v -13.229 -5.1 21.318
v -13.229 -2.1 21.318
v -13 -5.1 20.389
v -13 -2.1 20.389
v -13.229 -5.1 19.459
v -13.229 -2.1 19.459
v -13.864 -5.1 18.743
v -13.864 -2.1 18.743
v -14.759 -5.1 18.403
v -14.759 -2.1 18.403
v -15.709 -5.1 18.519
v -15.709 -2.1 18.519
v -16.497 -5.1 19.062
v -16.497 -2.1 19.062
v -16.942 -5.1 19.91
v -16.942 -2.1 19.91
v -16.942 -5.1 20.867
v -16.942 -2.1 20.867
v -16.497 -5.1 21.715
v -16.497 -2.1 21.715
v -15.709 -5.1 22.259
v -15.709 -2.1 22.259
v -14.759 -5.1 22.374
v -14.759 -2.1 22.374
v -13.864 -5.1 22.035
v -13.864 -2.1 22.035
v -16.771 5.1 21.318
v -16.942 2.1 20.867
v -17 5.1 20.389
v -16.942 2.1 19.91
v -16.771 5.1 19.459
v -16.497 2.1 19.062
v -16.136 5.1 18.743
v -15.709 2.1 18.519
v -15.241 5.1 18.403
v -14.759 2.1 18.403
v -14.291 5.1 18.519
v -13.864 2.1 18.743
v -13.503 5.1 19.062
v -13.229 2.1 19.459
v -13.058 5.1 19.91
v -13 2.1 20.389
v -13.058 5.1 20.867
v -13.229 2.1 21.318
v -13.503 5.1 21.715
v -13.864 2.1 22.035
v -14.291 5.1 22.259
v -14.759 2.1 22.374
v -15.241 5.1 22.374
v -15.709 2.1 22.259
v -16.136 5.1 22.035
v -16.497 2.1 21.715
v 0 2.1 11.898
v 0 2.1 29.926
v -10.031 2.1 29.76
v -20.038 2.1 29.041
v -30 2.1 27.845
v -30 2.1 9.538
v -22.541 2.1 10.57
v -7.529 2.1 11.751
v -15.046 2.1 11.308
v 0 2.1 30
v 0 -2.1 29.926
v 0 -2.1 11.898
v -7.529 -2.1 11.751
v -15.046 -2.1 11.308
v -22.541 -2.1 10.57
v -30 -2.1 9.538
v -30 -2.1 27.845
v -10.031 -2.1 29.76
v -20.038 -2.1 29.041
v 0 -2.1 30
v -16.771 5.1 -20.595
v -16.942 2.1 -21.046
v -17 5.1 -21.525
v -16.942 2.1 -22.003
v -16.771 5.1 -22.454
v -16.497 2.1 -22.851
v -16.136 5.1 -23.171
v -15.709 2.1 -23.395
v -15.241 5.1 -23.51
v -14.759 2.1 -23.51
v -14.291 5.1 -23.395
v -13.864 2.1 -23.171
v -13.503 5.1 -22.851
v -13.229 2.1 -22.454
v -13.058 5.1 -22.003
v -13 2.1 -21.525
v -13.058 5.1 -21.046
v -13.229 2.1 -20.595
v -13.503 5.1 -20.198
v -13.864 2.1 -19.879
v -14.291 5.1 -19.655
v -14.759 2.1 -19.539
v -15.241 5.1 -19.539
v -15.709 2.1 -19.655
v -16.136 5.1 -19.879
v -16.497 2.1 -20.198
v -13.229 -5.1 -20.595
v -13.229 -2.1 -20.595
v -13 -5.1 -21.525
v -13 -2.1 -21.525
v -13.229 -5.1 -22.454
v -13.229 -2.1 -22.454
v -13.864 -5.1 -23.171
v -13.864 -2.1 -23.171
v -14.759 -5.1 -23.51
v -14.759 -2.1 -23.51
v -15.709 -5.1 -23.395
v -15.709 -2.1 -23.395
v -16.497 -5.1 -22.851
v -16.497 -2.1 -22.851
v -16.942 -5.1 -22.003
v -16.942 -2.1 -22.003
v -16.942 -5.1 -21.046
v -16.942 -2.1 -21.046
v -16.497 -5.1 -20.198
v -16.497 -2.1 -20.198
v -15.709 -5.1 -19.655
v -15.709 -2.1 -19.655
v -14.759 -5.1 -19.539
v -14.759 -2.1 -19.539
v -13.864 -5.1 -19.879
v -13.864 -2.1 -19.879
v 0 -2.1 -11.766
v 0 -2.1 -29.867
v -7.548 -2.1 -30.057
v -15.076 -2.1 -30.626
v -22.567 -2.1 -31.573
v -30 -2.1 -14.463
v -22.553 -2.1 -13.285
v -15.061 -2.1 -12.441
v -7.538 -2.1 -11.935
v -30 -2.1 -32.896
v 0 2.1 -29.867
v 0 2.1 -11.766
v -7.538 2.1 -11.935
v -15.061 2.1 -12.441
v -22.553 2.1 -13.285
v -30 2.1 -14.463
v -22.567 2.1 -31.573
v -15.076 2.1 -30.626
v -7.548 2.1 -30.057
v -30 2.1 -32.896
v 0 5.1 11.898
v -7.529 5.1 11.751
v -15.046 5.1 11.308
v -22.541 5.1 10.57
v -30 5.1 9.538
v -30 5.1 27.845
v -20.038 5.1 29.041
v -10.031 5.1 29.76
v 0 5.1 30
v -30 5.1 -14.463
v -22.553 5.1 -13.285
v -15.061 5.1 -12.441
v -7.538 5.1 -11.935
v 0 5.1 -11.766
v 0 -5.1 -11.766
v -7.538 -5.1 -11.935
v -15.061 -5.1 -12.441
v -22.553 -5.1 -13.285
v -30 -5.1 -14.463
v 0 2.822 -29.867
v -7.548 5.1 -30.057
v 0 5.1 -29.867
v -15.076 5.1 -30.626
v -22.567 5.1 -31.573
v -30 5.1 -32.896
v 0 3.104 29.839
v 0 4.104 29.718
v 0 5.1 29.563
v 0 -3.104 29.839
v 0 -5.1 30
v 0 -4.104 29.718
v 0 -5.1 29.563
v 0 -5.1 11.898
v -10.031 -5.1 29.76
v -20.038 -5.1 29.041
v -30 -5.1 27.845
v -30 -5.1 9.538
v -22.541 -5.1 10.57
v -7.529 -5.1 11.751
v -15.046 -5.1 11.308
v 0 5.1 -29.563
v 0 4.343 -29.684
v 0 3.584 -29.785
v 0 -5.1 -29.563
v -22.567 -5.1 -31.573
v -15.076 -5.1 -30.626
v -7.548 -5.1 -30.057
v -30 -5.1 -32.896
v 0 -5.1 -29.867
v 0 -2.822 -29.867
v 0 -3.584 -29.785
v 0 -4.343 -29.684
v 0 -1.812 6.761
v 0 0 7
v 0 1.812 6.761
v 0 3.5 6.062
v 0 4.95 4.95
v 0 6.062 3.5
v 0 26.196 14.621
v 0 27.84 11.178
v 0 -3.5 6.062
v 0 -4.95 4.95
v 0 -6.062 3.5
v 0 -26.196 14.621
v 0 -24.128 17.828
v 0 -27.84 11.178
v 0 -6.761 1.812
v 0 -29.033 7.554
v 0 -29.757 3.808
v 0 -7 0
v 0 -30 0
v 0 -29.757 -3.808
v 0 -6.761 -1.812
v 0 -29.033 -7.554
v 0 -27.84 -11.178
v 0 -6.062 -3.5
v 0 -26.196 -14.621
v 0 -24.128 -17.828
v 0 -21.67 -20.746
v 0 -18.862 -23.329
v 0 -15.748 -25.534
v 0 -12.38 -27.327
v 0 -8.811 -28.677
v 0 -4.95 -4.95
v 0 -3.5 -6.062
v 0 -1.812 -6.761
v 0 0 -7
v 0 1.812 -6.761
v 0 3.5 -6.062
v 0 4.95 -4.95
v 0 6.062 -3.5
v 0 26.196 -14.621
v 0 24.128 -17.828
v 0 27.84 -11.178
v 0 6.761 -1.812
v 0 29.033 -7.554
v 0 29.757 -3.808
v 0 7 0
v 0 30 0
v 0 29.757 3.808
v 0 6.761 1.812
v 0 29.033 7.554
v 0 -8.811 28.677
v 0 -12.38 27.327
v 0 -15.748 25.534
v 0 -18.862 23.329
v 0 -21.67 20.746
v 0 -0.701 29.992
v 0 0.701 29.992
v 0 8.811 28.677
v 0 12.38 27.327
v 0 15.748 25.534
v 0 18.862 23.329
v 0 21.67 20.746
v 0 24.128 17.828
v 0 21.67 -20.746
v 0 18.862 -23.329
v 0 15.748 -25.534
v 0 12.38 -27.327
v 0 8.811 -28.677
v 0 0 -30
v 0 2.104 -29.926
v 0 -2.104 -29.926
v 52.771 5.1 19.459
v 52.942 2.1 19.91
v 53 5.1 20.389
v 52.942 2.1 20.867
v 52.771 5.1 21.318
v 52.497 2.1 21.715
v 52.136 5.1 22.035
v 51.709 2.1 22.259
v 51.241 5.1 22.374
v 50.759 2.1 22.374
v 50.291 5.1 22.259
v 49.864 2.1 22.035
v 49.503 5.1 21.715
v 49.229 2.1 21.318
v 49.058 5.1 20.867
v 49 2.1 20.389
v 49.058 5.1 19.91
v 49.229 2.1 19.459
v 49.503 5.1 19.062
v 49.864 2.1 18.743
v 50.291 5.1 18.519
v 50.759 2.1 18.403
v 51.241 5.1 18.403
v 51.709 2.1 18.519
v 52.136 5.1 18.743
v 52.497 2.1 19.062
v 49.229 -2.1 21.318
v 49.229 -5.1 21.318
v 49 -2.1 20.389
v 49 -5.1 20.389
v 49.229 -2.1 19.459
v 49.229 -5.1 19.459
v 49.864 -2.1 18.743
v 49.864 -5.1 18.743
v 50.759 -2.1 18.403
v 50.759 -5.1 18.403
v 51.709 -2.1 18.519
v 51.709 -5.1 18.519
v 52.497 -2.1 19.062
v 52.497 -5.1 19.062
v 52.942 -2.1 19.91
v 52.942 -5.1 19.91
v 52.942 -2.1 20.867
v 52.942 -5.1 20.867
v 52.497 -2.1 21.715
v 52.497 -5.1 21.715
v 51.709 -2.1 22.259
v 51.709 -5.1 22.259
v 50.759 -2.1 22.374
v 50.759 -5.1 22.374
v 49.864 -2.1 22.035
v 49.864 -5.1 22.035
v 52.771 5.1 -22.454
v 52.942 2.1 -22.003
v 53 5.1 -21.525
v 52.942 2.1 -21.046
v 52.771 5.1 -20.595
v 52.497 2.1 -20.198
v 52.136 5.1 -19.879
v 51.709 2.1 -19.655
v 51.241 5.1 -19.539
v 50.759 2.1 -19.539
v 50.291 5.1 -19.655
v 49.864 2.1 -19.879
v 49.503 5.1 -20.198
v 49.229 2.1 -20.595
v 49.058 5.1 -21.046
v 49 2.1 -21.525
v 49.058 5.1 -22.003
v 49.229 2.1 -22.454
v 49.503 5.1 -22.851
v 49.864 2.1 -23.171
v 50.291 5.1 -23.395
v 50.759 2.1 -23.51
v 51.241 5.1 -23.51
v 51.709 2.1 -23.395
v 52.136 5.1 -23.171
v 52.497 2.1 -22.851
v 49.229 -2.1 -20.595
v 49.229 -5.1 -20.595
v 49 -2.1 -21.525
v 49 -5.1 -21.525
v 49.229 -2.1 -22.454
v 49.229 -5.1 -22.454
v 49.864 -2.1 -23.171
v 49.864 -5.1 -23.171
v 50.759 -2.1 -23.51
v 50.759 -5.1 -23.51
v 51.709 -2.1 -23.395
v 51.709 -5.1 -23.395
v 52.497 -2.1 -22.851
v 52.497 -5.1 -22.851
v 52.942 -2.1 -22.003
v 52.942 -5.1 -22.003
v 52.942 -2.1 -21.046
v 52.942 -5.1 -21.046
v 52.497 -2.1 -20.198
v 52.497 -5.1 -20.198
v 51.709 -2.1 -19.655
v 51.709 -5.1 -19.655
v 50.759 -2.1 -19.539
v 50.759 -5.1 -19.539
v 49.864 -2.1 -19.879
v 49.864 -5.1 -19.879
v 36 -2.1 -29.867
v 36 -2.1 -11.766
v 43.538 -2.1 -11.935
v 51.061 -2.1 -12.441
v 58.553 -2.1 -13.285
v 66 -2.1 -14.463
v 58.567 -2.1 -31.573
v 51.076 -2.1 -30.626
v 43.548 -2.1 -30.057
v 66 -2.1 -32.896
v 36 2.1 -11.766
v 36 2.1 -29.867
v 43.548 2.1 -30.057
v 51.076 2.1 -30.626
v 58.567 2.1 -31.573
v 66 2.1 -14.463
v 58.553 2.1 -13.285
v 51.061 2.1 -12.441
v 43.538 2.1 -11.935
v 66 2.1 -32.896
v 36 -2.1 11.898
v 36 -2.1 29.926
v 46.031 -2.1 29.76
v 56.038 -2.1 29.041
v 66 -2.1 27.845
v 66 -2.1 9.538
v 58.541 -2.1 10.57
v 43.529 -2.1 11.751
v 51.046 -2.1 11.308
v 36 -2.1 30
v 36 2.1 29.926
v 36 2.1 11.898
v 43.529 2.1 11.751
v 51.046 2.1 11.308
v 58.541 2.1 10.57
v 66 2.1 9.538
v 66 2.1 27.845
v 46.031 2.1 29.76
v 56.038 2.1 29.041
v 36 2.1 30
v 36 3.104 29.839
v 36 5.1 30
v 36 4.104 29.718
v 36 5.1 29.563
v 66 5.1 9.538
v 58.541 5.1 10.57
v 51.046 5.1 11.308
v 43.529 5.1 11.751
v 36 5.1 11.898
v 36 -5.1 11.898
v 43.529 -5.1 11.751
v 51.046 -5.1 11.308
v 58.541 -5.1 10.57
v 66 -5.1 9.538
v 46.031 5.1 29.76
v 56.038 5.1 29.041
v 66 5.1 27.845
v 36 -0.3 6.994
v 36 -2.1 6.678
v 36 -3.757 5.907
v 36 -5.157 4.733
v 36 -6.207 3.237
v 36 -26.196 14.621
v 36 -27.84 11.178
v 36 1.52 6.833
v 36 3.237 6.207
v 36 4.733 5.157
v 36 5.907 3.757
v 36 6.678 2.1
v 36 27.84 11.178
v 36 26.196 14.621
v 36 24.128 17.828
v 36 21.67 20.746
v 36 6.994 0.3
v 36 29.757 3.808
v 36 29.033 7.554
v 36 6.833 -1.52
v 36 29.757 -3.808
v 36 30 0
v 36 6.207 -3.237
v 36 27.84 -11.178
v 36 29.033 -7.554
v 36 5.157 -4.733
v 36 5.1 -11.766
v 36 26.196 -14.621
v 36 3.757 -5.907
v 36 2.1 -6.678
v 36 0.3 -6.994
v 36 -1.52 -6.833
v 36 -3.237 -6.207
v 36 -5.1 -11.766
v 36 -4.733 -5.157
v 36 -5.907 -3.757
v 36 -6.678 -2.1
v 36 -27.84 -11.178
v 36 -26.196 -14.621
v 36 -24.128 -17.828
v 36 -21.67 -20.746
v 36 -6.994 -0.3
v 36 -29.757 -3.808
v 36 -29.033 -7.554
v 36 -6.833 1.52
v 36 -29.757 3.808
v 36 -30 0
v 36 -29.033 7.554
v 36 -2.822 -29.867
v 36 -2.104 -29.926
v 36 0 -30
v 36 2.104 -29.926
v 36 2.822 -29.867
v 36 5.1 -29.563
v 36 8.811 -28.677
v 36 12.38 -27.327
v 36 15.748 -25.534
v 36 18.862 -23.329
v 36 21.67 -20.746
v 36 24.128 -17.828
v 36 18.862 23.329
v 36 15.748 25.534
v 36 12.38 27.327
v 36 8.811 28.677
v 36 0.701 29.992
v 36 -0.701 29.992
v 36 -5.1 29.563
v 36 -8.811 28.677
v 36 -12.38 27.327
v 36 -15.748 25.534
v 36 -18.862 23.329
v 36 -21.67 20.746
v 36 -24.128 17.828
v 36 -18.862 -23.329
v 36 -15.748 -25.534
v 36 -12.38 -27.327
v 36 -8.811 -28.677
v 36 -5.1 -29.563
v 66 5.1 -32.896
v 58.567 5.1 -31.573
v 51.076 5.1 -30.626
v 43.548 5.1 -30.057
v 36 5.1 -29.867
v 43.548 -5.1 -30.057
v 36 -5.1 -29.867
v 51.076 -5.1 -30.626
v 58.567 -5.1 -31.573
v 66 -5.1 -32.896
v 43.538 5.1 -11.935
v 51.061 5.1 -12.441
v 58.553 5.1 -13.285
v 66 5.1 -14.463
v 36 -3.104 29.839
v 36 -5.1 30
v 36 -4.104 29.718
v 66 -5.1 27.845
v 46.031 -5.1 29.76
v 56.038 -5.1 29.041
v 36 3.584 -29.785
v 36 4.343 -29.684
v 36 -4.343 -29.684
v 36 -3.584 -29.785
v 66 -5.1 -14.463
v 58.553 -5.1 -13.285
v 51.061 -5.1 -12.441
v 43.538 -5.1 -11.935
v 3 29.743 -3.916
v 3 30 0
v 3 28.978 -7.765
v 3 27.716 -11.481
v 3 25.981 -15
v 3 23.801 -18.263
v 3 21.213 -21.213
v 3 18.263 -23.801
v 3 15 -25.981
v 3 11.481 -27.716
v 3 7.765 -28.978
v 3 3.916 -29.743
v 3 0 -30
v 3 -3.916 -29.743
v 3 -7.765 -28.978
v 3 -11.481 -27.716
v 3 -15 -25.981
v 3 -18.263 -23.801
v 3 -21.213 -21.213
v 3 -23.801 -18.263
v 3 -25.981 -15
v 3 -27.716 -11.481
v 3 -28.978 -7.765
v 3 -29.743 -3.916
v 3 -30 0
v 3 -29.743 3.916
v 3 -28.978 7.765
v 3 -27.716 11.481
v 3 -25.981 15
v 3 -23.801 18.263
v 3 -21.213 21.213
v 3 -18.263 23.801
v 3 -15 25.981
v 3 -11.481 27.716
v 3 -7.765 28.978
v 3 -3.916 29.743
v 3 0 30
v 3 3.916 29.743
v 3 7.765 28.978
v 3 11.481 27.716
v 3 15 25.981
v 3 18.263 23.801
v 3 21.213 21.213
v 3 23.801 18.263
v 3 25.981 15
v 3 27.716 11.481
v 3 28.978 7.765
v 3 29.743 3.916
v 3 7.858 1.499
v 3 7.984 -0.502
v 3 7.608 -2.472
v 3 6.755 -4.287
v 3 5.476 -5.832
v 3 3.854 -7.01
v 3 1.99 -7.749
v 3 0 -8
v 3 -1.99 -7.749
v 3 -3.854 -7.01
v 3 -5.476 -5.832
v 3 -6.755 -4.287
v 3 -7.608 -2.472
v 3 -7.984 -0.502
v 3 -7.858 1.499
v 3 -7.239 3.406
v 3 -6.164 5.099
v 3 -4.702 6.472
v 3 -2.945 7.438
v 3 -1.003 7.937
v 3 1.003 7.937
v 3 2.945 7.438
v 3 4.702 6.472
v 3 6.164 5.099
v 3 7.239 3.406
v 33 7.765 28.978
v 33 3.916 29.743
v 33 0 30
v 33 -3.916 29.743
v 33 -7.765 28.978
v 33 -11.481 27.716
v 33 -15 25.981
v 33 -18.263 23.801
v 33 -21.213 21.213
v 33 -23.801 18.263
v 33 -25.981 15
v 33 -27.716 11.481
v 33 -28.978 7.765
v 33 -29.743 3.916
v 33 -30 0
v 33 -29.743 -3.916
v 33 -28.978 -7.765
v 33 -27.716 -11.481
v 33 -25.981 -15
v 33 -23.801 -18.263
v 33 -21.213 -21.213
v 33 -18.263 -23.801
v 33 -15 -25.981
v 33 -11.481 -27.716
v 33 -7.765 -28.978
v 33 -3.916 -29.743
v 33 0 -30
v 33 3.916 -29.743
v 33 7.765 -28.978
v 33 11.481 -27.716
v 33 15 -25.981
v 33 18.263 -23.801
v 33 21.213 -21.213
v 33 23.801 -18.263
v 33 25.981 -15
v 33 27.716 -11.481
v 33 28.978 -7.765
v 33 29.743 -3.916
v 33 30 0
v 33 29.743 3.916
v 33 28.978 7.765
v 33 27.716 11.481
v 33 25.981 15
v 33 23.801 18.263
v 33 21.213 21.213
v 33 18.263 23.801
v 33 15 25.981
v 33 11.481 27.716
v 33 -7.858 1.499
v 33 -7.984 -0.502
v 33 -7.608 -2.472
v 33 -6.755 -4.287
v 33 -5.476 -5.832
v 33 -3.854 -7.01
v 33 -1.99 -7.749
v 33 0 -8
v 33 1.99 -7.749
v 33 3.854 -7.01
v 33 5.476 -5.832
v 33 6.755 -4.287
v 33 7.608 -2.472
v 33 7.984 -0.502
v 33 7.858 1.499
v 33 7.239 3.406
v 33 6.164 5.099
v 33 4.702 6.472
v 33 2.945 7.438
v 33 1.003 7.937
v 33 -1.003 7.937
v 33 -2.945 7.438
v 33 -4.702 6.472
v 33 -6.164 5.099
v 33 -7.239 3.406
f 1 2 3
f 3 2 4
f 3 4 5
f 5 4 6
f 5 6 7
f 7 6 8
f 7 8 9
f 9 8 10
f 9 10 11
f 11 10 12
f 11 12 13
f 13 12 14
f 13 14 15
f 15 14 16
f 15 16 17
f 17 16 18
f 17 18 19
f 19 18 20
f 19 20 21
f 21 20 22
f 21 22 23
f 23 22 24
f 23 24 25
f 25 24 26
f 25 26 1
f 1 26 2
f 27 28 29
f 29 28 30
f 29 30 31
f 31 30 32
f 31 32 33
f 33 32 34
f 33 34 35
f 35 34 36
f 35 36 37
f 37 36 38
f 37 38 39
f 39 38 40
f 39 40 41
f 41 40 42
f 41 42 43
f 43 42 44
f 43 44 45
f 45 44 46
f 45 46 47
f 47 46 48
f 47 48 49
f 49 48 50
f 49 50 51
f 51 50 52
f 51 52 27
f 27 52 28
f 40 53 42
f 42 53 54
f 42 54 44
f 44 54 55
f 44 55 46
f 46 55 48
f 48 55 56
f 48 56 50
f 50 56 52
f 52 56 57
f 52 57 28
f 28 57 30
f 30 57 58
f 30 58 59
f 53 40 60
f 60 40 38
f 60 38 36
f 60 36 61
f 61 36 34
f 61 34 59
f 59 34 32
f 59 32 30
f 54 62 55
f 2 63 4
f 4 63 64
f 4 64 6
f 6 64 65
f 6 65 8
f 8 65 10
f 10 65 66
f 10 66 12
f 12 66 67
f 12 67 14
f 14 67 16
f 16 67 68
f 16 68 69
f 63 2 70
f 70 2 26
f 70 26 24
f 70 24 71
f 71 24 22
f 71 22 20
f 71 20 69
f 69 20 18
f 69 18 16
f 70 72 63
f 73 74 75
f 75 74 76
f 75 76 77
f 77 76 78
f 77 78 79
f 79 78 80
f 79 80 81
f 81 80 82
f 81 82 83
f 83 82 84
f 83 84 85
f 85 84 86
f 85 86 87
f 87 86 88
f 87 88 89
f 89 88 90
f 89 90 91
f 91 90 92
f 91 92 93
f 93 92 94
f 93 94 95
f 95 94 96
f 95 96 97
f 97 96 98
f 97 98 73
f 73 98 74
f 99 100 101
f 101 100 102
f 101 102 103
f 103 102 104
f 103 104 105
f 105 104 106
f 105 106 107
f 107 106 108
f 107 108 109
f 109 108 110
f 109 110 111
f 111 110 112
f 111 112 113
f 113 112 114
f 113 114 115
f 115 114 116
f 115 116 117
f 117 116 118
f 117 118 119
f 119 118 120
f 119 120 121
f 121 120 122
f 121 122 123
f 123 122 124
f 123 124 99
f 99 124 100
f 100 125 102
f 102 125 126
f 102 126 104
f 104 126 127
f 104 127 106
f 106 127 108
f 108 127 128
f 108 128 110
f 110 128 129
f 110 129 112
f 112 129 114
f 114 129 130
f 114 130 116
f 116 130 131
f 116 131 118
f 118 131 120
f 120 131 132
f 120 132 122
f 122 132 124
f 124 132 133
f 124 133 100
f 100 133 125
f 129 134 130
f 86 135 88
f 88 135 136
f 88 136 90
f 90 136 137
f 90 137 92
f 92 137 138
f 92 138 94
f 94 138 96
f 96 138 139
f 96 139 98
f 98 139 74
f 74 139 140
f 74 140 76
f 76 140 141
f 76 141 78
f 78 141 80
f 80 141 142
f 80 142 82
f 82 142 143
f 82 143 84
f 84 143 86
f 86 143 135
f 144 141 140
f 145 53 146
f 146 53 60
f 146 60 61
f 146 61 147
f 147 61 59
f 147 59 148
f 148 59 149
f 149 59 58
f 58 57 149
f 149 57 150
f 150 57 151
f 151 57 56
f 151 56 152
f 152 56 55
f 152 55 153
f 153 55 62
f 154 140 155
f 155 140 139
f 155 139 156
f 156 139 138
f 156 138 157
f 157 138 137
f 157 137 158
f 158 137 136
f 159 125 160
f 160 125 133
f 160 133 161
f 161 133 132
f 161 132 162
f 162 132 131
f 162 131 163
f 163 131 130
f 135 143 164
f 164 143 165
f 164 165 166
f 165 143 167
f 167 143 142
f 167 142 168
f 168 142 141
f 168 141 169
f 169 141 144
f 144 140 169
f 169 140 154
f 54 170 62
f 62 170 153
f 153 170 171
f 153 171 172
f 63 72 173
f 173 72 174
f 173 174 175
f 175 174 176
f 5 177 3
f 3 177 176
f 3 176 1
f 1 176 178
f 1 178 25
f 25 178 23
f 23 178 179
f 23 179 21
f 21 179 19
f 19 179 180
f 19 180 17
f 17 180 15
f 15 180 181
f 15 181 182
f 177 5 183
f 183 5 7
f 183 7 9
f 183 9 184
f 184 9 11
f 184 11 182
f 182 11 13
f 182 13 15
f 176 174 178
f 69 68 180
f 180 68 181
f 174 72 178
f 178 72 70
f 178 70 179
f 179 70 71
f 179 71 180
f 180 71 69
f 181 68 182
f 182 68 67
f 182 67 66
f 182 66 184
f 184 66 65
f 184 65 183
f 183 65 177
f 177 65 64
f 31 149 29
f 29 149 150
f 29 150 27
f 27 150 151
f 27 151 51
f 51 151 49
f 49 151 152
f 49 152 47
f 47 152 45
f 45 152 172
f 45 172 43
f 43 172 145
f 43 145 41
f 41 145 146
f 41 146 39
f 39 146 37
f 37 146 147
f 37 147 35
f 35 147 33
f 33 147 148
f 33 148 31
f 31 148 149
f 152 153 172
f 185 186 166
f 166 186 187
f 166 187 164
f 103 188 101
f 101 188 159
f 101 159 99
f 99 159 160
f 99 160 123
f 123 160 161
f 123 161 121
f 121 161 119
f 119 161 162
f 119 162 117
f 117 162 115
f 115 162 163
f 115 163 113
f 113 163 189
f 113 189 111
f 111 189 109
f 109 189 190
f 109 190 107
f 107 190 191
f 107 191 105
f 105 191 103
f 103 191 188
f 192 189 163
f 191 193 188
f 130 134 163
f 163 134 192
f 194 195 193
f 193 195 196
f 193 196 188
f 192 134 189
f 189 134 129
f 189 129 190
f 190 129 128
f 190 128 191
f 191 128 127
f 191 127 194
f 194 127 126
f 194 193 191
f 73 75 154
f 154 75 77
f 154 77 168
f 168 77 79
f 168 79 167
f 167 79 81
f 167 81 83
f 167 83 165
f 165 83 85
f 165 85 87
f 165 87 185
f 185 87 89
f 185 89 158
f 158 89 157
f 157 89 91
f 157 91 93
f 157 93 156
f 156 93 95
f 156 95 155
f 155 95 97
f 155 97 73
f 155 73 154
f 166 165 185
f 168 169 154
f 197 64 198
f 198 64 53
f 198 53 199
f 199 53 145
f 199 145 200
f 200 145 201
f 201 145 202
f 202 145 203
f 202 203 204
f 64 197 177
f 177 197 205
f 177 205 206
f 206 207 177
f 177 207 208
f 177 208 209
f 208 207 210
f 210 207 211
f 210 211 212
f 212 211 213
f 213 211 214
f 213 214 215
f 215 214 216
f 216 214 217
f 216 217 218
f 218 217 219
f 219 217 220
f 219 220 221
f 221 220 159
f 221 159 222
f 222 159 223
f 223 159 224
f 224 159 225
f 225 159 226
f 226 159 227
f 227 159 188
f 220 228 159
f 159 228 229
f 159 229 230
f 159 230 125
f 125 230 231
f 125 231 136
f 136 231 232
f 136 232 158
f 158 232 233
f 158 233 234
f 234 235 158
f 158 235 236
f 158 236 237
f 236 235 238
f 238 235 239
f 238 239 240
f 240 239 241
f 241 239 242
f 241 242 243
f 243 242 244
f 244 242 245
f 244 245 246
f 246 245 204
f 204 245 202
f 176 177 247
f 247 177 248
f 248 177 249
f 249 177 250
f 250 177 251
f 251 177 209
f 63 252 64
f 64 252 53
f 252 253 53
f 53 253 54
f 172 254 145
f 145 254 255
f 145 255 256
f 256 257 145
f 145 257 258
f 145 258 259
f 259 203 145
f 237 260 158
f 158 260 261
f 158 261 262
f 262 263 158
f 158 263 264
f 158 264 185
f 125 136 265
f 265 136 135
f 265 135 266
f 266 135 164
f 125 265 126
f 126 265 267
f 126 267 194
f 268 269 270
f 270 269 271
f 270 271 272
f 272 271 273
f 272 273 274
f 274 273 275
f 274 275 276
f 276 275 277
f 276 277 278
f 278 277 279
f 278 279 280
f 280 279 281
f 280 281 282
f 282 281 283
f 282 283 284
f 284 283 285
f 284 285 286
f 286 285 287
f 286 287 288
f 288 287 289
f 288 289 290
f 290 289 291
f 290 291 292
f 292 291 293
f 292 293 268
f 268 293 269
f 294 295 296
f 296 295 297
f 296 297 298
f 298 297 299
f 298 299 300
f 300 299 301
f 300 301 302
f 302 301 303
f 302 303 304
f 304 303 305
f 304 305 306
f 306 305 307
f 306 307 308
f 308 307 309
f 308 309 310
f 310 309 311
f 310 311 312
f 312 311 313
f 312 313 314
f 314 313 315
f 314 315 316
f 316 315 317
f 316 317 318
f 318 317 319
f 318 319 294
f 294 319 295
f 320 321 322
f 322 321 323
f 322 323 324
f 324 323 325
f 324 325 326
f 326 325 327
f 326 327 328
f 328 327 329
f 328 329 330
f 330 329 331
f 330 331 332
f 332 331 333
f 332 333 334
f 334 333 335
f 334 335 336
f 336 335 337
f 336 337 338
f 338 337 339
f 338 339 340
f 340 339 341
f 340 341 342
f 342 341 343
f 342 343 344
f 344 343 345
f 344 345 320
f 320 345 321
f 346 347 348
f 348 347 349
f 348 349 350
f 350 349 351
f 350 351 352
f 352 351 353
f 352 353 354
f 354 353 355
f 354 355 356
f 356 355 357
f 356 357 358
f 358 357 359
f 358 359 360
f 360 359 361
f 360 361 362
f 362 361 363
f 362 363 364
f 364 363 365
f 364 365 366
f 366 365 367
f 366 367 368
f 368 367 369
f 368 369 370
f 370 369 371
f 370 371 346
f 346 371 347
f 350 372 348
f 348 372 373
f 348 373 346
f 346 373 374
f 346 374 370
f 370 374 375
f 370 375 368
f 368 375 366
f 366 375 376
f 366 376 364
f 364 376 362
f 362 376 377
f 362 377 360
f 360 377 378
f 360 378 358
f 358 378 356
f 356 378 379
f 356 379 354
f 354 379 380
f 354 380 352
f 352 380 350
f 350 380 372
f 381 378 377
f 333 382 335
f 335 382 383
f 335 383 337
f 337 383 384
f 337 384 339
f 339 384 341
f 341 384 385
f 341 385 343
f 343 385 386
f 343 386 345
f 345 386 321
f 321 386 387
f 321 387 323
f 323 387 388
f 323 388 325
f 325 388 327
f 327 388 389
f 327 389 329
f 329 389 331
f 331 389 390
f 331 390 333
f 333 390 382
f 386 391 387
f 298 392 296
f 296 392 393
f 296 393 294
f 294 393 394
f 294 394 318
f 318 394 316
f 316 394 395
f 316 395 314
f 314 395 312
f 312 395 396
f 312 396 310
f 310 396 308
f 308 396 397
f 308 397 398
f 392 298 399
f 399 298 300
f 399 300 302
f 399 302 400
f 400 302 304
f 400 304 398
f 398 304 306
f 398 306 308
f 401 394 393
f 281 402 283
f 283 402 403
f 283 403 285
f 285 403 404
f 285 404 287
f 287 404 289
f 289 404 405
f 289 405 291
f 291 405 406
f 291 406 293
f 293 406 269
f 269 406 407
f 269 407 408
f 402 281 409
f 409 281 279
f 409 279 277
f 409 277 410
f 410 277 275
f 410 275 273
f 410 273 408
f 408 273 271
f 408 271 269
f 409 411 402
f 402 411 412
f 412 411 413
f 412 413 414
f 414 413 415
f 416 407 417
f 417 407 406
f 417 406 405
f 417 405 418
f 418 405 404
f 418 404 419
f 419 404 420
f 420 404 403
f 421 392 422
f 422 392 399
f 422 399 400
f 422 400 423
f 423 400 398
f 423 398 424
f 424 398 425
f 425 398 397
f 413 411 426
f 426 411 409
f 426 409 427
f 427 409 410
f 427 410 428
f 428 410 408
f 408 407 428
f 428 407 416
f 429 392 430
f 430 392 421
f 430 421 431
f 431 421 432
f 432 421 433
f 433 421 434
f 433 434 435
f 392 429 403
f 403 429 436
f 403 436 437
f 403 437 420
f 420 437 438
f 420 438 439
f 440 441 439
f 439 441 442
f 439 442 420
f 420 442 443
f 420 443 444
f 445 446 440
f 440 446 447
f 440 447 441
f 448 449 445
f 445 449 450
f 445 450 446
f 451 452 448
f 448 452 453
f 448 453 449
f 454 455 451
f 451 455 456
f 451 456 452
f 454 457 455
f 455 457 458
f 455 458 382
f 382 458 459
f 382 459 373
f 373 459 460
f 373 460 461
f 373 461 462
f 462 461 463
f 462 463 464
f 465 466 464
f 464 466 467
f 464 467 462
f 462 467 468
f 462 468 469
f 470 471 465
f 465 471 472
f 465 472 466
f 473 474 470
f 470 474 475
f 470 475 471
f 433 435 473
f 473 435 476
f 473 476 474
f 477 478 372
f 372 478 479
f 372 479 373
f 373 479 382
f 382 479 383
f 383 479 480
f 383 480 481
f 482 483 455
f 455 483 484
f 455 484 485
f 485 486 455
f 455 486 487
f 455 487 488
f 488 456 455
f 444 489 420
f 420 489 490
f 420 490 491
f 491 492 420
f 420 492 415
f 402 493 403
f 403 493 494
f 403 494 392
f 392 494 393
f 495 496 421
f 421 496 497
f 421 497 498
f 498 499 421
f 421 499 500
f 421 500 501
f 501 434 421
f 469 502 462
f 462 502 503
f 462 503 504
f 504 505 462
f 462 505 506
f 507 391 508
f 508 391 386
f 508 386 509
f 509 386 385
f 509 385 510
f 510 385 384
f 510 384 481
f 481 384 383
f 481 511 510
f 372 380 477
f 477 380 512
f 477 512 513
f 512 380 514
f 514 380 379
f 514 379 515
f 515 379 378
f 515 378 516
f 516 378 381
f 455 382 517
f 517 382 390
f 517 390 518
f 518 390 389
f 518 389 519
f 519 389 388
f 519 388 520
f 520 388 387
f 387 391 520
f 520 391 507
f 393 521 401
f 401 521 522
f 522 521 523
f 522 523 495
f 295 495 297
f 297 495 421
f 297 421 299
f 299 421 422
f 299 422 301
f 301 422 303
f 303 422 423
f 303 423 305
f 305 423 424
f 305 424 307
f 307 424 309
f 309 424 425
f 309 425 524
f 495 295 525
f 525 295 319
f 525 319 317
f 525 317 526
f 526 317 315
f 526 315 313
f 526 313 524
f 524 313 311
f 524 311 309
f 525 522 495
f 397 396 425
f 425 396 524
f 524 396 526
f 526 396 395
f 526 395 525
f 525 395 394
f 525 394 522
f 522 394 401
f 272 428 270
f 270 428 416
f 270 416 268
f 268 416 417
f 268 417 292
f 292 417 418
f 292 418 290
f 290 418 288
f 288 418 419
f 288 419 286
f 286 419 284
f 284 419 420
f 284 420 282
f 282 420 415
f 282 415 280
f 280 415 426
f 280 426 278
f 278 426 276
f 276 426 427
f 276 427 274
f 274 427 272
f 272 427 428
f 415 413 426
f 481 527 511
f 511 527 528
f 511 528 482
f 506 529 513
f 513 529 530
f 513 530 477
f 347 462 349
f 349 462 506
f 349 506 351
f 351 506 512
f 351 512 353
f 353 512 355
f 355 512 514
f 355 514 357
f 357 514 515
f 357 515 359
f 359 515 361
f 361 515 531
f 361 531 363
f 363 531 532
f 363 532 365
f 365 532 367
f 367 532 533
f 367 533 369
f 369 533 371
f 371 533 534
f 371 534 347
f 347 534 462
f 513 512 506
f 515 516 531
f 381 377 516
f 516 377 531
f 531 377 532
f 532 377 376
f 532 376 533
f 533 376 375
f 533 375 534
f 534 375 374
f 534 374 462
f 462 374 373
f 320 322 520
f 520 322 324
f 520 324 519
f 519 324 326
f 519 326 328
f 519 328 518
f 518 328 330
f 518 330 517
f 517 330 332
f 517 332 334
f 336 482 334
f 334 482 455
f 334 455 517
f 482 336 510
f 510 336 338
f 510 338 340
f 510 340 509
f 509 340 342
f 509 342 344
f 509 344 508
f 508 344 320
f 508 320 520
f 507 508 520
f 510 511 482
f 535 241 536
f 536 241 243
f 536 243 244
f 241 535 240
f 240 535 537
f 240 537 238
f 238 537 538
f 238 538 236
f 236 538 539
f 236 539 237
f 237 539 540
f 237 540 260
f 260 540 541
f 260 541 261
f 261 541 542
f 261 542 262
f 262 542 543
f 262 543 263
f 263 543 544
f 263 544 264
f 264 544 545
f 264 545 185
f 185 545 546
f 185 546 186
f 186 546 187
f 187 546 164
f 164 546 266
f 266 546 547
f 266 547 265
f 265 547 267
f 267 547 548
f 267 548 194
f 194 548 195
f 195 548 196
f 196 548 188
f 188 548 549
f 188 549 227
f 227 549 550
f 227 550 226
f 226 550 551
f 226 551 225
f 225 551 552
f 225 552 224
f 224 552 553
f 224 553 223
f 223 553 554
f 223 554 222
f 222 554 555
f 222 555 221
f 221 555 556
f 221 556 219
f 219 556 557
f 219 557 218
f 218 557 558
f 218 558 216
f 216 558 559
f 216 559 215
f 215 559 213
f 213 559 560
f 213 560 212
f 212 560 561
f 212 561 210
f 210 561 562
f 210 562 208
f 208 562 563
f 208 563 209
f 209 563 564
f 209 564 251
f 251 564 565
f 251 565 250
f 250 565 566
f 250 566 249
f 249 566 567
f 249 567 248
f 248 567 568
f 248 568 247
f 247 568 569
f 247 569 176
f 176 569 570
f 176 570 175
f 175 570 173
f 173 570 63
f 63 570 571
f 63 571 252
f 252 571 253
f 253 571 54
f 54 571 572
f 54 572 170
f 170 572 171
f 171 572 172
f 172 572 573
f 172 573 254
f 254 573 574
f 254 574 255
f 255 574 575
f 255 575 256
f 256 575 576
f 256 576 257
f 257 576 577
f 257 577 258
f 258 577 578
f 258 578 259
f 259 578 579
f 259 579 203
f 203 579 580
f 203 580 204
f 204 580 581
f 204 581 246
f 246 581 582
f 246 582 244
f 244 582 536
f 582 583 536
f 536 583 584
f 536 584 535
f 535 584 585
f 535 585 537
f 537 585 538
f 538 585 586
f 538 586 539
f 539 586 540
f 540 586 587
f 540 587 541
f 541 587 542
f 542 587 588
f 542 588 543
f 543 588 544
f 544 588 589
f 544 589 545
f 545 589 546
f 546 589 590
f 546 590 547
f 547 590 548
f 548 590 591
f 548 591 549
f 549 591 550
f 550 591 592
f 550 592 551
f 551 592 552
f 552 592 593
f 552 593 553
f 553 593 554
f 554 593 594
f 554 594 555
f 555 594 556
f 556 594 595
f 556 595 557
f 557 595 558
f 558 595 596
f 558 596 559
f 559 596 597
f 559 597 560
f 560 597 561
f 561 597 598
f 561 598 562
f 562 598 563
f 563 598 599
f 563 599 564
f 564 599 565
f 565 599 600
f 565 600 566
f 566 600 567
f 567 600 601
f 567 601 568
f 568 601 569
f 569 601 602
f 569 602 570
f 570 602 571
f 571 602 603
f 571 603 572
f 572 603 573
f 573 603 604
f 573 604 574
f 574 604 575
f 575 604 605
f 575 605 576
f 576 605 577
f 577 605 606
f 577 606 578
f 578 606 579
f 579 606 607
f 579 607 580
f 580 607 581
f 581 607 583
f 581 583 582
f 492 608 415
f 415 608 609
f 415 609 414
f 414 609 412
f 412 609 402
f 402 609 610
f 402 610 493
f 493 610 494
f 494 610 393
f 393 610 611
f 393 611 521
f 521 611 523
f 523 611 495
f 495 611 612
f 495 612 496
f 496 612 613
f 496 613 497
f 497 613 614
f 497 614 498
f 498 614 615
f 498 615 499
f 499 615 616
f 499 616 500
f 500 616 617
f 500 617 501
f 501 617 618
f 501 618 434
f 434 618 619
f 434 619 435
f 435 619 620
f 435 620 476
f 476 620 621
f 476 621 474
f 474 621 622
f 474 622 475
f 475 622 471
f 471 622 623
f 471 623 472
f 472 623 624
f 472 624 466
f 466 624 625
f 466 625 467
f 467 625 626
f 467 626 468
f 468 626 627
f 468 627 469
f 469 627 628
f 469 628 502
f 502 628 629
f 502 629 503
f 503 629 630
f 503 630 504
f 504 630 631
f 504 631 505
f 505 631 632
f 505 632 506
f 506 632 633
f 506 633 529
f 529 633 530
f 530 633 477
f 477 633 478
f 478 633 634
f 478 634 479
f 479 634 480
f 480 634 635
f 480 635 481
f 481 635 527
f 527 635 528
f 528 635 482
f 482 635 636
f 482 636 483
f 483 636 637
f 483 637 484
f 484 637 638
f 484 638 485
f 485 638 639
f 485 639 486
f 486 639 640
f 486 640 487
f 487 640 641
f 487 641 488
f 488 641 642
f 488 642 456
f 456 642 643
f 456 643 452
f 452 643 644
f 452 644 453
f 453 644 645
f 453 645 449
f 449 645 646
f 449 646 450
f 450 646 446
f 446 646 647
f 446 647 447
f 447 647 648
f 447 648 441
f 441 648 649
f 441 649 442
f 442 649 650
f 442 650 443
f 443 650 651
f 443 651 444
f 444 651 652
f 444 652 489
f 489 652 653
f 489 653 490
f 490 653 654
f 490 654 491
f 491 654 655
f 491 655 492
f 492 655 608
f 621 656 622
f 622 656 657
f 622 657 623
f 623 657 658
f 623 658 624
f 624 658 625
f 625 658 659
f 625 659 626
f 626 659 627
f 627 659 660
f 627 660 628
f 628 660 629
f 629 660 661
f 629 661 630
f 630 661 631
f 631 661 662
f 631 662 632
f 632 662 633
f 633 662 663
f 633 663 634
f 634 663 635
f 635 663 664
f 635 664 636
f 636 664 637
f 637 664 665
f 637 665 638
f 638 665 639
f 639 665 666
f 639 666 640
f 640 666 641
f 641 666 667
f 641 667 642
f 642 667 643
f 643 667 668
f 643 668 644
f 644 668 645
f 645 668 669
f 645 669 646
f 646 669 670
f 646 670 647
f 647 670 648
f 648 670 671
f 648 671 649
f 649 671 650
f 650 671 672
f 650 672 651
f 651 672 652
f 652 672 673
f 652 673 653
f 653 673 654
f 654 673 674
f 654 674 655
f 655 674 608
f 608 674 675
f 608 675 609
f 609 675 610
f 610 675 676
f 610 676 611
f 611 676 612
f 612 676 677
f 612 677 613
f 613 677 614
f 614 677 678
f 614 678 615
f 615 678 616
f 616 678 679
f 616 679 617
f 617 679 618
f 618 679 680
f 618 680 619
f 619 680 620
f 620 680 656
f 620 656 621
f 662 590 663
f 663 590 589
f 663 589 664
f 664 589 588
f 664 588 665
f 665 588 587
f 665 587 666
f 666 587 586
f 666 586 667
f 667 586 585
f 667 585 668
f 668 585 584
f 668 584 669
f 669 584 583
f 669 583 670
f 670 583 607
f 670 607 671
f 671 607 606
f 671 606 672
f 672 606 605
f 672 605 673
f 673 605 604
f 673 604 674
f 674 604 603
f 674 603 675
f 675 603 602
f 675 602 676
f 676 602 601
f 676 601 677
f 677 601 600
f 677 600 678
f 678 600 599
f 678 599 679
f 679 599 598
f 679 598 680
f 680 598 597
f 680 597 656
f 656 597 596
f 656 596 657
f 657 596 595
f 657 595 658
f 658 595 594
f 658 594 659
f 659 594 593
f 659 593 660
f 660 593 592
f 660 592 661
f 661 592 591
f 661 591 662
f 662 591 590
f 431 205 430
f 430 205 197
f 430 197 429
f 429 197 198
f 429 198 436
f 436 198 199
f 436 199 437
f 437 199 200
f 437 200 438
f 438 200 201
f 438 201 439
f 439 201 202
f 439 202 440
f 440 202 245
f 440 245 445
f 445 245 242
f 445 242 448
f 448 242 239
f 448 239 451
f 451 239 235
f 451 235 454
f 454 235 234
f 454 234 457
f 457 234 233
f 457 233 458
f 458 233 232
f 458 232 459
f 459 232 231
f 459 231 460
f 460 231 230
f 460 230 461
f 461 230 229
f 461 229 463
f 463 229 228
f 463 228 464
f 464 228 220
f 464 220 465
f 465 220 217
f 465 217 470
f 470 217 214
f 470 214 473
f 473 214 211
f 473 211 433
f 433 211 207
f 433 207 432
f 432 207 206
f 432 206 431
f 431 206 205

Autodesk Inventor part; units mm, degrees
ref_plane "YZ Plane" through (0, 0, 0) normal (1, 0, 0) x (0, 1, 0)
ref_plane "XZ Plane" through (0, 0, 0) normal (0, 1, 0) x (-1, 0, 0)
ref_plane "XY Plane" through (0, 0, 0) normal (0, 0, 1) x (1, 0, 0)
sketch "Skizze1" plane through (0, 0, 0) normal (1, 0, 0) x (0, 1, 0)
  circle A0 centre (0, 0) radius 30
  dimension "d0" = 60
extrude "Extrusion1" add sketch "Skizze1" along normal blind 36
sketch "Skizze2" plane through (0, 0, 0) normal (0, 0, 1) x (1, 0, 0)
  line L0 (0, 30) -> (36, 30) projected
  line L1 (0, -30) -> (36, -30) projected
  line L2 (0, -30) -> (0, 30) projected
  line L3 (36, -30) -> (36, 30) projected
  line L4 (3, 30) -> (33, 30)
  line L5 (33, 30) -> (33, -30)
  line L6 (33, -30) -> (3, -30)
  line L7 (3, -30) -> (3, 30)
  point P0 (0, 0)
  dimension "d3" = 3
  dimension "d4" = 3
extrude "Extrusion2" cut sketch "Skizze2" along normal through all both and the other way through all contours L0 L5 L1 L7
sketch "Skizze3" plane through (3, 0, 0) normal (1, 0, 0) x (0, 0, -1)
  circle A0 centre (0, 0) radius 30 projected
  circle A1 centre (0, 0) radius 8
  circle A2 centre (0, 0) radius 7
  point P0 (0, 0)
  dimension "d11" = 16
  dimension "d12" = 14
extrude "Extrusion3" add sketch "Skizze3" along normal blind 30 contours A1
sketch "Skizze4" plane through (36, 0, 0) normal (1, 0, 0) x (0, 0, -1)
  circle A0 centre (0, 0) radius 7
  circle A1 centre (0, 0) radius 7 projected
  point P0 (0, 0)
extrude "Extrusion4" cut sketch "Skizze4" against normal through all
sketch "Skizze9" plane through (0, 0, 0) normal (0, 1, 0) x (-1, 0, 0)
  line L0 (0, 30) -> (-3, 30) projected
  line L1 (0, 30) -> (0, -30) projected
  circle A0 centre (-36, -179.9335) radius 209.9335
  line L2 (0, -208.9659) -> (0, 69.8277) projected
  line L3 (41.5282, 0) -> (-106.5298, 0) projected
  line L4 (-36, 30) -> (-36, -30) projected
  line L5 (-33, 30) -> (-36, 30) projected
  circle A1 centre (-36, -179.9335) radius 191.832
  circle A2 centre (-36, -179.9335) radius 168.168
  circle A3 centre (-36, -179.9335) radius 150.0665
  line L6 (-66, -32.8962) -> (-66, 27.8454)
  point P0 (0, 0)
  point P1 (-66, 9.5382)
  point P2 (-36, 11.8985)
  point P3 (-66, -14.463)
  point P4 (-36, -29.867)
  point P5 (-36, -11.7655)
  dimension "d25" = 300.133
  dimension "d21" = 36
  dimension "d22" = 419.867
  dimension "d23" = 383.664
  dimension "d24" = 336.336
  dimension "d26" = 30
extrude "Extrusion6" add sketch "Skizze9" along normal mid plane 10.2 contours L4 A1 L6 A0 | L4 A3 L6 A2
sketch "Skizze10" plane through (0, 0, 0) normal (0, 0, 1) x (1, 0, 0)
  line L0 (36, 5.1) -> (36, 5.1) projected
  line L1 (36, 2.8218) -> (36, 5.1) projected
  line L2 (36, -2.8218) -> (36, 2.8218) projected
  line L3 (36, -5.1) -> (36, -2.8218) projected
  line L4 (36, -5.1) -> (36, -5.1) projected
  line L5 (36, 0) -> (36, -5.1) projected
  line L6 (36, 5.1) -> (36, 0) projected
  line L7 (33, -30) -> (33, 30) projected
  line L8 (36, -5.1) -> (36, 0) projected
  line L9 (36, 0) -> (36, 5.1) projected
  line L10 (66, -5.1) -> (66, 5.1) projected
  line L11 (36, 2.1) -> (66, 2.1)
  line L12 (66, 2.1) -> (66, -2.1)
  line L13 (66, -2.1) -> (36, -2.1)
  line L14 (36, -2.1) -> (36, 2.1)
  line L15 (36, -5.1) -> (66, -5.1) projected
  line L16 (36, 5.1) -> (66, 5.1) projected
  point P0 (0, 0)
  point P1 (36, -3.1)
  point P2 (36, 3.1)
  dimension "d29" = 3
  dimension "d45" = 3
extrude "Extrusion8" cut sketch "Skizze10" along normal through all both and the other way through all contours L11 L10 L13 L2
sketch "Skizze11" plane through (0, 5.1, 0) normal (0, 1, 0) x (1, 0, 0)
  circle A0 centre (36, 179.9335) radius 159.1175
  line L0 (-245.2362, 0) -> (317.2362, 0) projected
  line L1 (0, 462.9798) -> (0, -112.1633) projected
  line L2 (36, -29.5633) -> (36, 29.5633) projected
  arc A1 (36, 29.867) -> (66, 32.8962) centre (36, 179.9335) ccw projected
  circle A2 centre (36, 179.9335) radius 200.883
  point P0 (0, 0)
  point P1 (51, 21.5246)
  point P2 (51, -20.3887)
  dimension "d34" = 318.235
  dimension "d36" = 401.766
  dimension "d35" = 15
  dimension "d37" = 15
hole "Bohrung1" at (51, 5.1, -21.5246) at (51, 5.1, 20.3887) direction (0, -1, 0) diameter 4 depth 50 tip angle 118
ref_plane "Arbeitsebene1" through (18, 0, 0) normal (1, 0, 0) x (0, 0, -1)
mirror "Spiegeln1" about plane through (18, 0, 0) normal (1, 0, 0) of "Extrusion6", "Bohrung1", "Extrusion8"
properties part number "Verbindungsstück"
